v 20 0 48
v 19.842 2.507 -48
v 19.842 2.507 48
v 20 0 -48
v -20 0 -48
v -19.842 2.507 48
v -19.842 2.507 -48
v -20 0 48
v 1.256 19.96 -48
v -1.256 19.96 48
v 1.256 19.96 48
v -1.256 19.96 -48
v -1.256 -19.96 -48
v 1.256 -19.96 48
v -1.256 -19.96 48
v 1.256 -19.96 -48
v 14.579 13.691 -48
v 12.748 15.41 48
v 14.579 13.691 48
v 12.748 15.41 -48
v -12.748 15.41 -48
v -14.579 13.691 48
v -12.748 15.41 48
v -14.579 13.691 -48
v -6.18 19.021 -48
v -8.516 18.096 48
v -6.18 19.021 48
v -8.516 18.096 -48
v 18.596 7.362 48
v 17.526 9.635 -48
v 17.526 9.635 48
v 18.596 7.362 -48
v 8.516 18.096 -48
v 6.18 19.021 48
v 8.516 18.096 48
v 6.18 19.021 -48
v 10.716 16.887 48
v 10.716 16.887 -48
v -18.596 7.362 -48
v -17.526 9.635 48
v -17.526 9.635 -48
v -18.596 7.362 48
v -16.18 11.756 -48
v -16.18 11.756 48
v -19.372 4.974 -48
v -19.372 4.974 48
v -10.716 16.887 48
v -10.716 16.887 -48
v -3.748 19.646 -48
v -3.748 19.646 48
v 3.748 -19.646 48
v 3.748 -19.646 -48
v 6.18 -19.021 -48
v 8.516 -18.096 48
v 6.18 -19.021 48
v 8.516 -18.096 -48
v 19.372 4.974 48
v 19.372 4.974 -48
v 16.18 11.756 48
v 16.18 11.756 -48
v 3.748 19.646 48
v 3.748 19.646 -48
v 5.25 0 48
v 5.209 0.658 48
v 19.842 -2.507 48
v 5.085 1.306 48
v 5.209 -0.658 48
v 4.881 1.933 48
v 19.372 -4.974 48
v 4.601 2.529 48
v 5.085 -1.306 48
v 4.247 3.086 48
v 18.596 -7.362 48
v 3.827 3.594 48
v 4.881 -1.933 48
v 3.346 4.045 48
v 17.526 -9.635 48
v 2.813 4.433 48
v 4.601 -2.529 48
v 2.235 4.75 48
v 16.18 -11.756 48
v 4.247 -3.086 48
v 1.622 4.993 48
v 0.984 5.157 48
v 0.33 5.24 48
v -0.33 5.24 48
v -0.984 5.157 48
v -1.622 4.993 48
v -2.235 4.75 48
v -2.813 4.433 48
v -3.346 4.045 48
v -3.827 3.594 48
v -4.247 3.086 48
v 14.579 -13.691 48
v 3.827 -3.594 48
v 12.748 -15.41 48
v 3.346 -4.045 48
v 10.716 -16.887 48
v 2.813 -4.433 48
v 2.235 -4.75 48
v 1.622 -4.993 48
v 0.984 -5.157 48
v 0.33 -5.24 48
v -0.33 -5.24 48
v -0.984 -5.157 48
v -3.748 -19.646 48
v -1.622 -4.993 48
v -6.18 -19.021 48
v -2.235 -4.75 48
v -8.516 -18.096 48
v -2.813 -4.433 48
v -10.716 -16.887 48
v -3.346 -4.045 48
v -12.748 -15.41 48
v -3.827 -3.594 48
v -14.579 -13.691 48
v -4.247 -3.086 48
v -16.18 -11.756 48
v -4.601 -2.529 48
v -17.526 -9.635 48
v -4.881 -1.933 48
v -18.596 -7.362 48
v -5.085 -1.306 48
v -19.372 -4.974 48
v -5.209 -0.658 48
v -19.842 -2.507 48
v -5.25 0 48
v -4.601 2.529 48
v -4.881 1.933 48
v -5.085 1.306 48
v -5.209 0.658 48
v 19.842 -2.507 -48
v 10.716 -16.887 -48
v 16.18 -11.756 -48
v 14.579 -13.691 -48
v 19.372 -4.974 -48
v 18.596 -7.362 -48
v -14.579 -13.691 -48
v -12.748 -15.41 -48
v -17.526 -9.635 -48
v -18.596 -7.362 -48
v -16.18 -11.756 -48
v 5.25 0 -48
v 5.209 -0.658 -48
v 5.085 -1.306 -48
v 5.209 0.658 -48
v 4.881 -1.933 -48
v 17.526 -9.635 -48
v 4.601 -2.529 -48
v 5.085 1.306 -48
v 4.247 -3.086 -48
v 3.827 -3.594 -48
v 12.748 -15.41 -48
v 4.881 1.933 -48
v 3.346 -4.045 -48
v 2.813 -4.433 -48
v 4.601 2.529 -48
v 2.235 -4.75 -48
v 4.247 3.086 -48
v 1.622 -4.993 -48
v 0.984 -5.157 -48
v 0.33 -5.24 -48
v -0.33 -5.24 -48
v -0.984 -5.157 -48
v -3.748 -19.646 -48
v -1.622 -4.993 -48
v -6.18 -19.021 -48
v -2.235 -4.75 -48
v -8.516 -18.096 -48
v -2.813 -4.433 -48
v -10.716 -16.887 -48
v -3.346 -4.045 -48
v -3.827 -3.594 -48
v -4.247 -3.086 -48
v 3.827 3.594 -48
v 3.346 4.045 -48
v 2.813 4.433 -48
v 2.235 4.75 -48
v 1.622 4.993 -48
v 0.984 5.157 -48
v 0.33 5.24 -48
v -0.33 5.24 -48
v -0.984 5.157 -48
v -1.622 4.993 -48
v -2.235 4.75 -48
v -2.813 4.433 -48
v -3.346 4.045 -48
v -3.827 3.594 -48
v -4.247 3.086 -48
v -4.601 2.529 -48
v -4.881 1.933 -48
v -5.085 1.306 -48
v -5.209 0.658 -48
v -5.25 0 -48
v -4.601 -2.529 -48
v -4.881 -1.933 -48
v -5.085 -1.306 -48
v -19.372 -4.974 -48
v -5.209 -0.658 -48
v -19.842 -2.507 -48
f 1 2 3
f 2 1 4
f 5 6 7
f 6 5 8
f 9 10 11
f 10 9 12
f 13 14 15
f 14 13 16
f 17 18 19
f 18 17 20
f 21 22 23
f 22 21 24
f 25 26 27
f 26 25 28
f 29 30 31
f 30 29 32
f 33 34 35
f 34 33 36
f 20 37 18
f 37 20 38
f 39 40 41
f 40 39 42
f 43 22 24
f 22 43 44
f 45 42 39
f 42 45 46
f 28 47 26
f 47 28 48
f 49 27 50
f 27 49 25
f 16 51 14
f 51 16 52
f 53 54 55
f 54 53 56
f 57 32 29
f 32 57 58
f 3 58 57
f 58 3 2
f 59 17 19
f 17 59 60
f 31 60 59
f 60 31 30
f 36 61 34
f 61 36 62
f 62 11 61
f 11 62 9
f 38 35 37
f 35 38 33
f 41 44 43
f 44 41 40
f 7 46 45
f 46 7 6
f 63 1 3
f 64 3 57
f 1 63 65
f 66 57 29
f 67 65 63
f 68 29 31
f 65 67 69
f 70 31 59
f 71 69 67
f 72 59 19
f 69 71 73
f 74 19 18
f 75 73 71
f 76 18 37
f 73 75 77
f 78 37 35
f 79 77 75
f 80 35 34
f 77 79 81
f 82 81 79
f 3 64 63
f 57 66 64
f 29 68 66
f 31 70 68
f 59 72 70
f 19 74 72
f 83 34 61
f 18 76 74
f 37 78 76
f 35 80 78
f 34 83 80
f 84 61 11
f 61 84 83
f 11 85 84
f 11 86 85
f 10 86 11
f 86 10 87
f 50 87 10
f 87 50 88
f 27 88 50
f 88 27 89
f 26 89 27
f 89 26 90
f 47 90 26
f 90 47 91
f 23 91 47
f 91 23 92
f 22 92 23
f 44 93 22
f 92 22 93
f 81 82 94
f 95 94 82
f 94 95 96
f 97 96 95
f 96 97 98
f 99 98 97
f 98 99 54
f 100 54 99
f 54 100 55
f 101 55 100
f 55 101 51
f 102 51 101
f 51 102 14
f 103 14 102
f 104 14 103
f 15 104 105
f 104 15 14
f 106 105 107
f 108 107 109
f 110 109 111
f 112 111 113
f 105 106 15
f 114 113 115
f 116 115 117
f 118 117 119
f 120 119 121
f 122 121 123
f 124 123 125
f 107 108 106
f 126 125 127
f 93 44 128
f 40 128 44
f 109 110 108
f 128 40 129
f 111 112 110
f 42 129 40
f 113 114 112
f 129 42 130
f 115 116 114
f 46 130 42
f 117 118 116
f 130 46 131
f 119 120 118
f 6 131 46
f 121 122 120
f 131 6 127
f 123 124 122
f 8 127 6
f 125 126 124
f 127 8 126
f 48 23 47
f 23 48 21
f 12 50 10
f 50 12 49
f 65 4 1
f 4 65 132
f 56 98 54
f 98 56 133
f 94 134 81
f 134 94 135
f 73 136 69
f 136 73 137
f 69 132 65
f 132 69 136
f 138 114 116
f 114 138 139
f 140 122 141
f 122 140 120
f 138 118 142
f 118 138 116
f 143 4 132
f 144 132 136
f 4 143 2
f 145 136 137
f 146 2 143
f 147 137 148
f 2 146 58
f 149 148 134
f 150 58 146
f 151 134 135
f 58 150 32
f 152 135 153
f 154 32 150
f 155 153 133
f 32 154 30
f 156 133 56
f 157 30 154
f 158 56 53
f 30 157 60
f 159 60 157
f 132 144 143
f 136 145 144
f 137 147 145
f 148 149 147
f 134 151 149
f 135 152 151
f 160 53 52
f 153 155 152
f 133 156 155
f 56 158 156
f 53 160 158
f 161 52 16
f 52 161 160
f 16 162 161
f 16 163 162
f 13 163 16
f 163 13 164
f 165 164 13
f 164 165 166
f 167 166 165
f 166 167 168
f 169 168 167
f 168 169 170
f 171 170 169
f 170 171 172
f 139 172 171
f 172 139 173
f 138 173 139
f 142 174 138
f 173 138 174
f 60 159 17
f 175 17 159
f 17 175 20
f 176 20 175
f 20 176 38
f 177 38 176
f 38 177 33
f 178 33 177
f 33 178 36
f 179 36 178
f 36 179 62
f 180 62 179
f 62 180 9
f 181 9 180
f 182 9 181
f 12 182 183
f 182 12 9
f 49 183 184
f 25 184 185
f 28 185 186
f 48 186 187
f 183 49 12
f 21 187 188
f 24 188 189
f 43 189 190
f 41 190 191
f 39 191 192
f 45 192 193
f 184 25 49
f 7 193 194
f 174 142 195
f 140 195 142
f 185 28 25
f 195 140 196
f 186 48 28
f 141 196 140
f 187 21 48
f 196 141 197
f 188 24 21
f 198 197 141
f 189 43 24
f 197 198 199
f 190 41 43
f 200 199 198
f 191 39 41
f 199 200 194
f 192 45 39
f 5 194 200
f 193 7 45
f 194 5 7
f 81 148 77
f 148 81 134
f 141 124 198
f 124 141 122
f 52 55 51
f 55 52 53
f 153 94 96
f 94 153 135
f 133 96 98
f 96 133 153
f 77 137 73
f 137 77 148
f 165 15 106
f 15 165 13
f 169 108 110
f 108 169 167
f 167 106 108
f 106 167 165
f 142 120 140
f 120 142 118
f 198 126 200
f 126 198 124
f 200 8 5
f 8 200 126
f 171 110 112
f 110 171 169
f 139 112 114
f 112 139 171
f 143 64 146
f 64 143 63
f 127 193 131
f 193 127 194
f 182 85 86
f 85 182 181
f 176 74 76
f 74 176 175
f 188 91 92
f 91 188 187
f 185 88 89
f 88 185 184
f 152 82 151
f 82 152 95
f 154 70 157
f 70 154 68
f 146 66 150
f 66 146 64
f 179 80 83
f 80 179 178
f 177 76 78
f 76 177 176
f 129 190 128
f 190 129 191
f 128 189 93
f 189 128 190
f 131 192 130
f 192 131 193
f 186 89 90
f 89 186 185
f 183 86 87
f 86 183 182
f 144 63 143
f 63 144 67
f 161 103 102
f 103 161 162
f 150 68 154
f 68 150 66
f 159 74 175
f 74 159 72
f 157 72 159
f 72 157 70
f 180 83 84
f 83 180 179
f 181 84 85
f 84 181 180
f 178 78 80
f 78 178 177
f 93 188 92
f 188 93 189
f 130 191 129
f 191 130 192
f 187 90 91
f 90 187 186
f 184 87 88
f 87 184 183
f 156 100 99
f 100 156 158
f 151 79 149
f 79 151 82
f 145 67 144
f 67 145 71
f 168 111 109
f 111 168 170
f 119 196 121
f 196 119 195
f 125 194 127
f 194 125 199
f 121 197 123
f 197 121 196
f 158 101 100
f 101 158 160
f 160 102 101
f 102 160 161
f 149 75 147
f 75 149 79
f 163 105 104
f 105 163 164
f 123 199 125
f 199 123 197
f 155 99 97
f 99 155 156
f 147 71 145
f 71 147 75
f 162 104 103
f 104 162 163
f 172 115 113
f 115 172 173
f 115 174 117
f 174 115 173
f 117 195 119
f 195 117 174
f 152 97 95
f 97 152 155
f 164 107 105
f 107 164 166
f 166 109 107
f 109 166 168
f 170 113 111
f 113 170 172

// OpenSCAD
$fn = 50;


difference() {
	union() {
		translate(v = [0, 0, -48.0000000000]) {
			cylinder(h = 96, r = 20.0000000000);
		}
	}
	union() {
		translate(v = [0, 0, -100.0000000000]) {
			cylinder(h = 200, r = 5.2500000000);
		}
	}
}
